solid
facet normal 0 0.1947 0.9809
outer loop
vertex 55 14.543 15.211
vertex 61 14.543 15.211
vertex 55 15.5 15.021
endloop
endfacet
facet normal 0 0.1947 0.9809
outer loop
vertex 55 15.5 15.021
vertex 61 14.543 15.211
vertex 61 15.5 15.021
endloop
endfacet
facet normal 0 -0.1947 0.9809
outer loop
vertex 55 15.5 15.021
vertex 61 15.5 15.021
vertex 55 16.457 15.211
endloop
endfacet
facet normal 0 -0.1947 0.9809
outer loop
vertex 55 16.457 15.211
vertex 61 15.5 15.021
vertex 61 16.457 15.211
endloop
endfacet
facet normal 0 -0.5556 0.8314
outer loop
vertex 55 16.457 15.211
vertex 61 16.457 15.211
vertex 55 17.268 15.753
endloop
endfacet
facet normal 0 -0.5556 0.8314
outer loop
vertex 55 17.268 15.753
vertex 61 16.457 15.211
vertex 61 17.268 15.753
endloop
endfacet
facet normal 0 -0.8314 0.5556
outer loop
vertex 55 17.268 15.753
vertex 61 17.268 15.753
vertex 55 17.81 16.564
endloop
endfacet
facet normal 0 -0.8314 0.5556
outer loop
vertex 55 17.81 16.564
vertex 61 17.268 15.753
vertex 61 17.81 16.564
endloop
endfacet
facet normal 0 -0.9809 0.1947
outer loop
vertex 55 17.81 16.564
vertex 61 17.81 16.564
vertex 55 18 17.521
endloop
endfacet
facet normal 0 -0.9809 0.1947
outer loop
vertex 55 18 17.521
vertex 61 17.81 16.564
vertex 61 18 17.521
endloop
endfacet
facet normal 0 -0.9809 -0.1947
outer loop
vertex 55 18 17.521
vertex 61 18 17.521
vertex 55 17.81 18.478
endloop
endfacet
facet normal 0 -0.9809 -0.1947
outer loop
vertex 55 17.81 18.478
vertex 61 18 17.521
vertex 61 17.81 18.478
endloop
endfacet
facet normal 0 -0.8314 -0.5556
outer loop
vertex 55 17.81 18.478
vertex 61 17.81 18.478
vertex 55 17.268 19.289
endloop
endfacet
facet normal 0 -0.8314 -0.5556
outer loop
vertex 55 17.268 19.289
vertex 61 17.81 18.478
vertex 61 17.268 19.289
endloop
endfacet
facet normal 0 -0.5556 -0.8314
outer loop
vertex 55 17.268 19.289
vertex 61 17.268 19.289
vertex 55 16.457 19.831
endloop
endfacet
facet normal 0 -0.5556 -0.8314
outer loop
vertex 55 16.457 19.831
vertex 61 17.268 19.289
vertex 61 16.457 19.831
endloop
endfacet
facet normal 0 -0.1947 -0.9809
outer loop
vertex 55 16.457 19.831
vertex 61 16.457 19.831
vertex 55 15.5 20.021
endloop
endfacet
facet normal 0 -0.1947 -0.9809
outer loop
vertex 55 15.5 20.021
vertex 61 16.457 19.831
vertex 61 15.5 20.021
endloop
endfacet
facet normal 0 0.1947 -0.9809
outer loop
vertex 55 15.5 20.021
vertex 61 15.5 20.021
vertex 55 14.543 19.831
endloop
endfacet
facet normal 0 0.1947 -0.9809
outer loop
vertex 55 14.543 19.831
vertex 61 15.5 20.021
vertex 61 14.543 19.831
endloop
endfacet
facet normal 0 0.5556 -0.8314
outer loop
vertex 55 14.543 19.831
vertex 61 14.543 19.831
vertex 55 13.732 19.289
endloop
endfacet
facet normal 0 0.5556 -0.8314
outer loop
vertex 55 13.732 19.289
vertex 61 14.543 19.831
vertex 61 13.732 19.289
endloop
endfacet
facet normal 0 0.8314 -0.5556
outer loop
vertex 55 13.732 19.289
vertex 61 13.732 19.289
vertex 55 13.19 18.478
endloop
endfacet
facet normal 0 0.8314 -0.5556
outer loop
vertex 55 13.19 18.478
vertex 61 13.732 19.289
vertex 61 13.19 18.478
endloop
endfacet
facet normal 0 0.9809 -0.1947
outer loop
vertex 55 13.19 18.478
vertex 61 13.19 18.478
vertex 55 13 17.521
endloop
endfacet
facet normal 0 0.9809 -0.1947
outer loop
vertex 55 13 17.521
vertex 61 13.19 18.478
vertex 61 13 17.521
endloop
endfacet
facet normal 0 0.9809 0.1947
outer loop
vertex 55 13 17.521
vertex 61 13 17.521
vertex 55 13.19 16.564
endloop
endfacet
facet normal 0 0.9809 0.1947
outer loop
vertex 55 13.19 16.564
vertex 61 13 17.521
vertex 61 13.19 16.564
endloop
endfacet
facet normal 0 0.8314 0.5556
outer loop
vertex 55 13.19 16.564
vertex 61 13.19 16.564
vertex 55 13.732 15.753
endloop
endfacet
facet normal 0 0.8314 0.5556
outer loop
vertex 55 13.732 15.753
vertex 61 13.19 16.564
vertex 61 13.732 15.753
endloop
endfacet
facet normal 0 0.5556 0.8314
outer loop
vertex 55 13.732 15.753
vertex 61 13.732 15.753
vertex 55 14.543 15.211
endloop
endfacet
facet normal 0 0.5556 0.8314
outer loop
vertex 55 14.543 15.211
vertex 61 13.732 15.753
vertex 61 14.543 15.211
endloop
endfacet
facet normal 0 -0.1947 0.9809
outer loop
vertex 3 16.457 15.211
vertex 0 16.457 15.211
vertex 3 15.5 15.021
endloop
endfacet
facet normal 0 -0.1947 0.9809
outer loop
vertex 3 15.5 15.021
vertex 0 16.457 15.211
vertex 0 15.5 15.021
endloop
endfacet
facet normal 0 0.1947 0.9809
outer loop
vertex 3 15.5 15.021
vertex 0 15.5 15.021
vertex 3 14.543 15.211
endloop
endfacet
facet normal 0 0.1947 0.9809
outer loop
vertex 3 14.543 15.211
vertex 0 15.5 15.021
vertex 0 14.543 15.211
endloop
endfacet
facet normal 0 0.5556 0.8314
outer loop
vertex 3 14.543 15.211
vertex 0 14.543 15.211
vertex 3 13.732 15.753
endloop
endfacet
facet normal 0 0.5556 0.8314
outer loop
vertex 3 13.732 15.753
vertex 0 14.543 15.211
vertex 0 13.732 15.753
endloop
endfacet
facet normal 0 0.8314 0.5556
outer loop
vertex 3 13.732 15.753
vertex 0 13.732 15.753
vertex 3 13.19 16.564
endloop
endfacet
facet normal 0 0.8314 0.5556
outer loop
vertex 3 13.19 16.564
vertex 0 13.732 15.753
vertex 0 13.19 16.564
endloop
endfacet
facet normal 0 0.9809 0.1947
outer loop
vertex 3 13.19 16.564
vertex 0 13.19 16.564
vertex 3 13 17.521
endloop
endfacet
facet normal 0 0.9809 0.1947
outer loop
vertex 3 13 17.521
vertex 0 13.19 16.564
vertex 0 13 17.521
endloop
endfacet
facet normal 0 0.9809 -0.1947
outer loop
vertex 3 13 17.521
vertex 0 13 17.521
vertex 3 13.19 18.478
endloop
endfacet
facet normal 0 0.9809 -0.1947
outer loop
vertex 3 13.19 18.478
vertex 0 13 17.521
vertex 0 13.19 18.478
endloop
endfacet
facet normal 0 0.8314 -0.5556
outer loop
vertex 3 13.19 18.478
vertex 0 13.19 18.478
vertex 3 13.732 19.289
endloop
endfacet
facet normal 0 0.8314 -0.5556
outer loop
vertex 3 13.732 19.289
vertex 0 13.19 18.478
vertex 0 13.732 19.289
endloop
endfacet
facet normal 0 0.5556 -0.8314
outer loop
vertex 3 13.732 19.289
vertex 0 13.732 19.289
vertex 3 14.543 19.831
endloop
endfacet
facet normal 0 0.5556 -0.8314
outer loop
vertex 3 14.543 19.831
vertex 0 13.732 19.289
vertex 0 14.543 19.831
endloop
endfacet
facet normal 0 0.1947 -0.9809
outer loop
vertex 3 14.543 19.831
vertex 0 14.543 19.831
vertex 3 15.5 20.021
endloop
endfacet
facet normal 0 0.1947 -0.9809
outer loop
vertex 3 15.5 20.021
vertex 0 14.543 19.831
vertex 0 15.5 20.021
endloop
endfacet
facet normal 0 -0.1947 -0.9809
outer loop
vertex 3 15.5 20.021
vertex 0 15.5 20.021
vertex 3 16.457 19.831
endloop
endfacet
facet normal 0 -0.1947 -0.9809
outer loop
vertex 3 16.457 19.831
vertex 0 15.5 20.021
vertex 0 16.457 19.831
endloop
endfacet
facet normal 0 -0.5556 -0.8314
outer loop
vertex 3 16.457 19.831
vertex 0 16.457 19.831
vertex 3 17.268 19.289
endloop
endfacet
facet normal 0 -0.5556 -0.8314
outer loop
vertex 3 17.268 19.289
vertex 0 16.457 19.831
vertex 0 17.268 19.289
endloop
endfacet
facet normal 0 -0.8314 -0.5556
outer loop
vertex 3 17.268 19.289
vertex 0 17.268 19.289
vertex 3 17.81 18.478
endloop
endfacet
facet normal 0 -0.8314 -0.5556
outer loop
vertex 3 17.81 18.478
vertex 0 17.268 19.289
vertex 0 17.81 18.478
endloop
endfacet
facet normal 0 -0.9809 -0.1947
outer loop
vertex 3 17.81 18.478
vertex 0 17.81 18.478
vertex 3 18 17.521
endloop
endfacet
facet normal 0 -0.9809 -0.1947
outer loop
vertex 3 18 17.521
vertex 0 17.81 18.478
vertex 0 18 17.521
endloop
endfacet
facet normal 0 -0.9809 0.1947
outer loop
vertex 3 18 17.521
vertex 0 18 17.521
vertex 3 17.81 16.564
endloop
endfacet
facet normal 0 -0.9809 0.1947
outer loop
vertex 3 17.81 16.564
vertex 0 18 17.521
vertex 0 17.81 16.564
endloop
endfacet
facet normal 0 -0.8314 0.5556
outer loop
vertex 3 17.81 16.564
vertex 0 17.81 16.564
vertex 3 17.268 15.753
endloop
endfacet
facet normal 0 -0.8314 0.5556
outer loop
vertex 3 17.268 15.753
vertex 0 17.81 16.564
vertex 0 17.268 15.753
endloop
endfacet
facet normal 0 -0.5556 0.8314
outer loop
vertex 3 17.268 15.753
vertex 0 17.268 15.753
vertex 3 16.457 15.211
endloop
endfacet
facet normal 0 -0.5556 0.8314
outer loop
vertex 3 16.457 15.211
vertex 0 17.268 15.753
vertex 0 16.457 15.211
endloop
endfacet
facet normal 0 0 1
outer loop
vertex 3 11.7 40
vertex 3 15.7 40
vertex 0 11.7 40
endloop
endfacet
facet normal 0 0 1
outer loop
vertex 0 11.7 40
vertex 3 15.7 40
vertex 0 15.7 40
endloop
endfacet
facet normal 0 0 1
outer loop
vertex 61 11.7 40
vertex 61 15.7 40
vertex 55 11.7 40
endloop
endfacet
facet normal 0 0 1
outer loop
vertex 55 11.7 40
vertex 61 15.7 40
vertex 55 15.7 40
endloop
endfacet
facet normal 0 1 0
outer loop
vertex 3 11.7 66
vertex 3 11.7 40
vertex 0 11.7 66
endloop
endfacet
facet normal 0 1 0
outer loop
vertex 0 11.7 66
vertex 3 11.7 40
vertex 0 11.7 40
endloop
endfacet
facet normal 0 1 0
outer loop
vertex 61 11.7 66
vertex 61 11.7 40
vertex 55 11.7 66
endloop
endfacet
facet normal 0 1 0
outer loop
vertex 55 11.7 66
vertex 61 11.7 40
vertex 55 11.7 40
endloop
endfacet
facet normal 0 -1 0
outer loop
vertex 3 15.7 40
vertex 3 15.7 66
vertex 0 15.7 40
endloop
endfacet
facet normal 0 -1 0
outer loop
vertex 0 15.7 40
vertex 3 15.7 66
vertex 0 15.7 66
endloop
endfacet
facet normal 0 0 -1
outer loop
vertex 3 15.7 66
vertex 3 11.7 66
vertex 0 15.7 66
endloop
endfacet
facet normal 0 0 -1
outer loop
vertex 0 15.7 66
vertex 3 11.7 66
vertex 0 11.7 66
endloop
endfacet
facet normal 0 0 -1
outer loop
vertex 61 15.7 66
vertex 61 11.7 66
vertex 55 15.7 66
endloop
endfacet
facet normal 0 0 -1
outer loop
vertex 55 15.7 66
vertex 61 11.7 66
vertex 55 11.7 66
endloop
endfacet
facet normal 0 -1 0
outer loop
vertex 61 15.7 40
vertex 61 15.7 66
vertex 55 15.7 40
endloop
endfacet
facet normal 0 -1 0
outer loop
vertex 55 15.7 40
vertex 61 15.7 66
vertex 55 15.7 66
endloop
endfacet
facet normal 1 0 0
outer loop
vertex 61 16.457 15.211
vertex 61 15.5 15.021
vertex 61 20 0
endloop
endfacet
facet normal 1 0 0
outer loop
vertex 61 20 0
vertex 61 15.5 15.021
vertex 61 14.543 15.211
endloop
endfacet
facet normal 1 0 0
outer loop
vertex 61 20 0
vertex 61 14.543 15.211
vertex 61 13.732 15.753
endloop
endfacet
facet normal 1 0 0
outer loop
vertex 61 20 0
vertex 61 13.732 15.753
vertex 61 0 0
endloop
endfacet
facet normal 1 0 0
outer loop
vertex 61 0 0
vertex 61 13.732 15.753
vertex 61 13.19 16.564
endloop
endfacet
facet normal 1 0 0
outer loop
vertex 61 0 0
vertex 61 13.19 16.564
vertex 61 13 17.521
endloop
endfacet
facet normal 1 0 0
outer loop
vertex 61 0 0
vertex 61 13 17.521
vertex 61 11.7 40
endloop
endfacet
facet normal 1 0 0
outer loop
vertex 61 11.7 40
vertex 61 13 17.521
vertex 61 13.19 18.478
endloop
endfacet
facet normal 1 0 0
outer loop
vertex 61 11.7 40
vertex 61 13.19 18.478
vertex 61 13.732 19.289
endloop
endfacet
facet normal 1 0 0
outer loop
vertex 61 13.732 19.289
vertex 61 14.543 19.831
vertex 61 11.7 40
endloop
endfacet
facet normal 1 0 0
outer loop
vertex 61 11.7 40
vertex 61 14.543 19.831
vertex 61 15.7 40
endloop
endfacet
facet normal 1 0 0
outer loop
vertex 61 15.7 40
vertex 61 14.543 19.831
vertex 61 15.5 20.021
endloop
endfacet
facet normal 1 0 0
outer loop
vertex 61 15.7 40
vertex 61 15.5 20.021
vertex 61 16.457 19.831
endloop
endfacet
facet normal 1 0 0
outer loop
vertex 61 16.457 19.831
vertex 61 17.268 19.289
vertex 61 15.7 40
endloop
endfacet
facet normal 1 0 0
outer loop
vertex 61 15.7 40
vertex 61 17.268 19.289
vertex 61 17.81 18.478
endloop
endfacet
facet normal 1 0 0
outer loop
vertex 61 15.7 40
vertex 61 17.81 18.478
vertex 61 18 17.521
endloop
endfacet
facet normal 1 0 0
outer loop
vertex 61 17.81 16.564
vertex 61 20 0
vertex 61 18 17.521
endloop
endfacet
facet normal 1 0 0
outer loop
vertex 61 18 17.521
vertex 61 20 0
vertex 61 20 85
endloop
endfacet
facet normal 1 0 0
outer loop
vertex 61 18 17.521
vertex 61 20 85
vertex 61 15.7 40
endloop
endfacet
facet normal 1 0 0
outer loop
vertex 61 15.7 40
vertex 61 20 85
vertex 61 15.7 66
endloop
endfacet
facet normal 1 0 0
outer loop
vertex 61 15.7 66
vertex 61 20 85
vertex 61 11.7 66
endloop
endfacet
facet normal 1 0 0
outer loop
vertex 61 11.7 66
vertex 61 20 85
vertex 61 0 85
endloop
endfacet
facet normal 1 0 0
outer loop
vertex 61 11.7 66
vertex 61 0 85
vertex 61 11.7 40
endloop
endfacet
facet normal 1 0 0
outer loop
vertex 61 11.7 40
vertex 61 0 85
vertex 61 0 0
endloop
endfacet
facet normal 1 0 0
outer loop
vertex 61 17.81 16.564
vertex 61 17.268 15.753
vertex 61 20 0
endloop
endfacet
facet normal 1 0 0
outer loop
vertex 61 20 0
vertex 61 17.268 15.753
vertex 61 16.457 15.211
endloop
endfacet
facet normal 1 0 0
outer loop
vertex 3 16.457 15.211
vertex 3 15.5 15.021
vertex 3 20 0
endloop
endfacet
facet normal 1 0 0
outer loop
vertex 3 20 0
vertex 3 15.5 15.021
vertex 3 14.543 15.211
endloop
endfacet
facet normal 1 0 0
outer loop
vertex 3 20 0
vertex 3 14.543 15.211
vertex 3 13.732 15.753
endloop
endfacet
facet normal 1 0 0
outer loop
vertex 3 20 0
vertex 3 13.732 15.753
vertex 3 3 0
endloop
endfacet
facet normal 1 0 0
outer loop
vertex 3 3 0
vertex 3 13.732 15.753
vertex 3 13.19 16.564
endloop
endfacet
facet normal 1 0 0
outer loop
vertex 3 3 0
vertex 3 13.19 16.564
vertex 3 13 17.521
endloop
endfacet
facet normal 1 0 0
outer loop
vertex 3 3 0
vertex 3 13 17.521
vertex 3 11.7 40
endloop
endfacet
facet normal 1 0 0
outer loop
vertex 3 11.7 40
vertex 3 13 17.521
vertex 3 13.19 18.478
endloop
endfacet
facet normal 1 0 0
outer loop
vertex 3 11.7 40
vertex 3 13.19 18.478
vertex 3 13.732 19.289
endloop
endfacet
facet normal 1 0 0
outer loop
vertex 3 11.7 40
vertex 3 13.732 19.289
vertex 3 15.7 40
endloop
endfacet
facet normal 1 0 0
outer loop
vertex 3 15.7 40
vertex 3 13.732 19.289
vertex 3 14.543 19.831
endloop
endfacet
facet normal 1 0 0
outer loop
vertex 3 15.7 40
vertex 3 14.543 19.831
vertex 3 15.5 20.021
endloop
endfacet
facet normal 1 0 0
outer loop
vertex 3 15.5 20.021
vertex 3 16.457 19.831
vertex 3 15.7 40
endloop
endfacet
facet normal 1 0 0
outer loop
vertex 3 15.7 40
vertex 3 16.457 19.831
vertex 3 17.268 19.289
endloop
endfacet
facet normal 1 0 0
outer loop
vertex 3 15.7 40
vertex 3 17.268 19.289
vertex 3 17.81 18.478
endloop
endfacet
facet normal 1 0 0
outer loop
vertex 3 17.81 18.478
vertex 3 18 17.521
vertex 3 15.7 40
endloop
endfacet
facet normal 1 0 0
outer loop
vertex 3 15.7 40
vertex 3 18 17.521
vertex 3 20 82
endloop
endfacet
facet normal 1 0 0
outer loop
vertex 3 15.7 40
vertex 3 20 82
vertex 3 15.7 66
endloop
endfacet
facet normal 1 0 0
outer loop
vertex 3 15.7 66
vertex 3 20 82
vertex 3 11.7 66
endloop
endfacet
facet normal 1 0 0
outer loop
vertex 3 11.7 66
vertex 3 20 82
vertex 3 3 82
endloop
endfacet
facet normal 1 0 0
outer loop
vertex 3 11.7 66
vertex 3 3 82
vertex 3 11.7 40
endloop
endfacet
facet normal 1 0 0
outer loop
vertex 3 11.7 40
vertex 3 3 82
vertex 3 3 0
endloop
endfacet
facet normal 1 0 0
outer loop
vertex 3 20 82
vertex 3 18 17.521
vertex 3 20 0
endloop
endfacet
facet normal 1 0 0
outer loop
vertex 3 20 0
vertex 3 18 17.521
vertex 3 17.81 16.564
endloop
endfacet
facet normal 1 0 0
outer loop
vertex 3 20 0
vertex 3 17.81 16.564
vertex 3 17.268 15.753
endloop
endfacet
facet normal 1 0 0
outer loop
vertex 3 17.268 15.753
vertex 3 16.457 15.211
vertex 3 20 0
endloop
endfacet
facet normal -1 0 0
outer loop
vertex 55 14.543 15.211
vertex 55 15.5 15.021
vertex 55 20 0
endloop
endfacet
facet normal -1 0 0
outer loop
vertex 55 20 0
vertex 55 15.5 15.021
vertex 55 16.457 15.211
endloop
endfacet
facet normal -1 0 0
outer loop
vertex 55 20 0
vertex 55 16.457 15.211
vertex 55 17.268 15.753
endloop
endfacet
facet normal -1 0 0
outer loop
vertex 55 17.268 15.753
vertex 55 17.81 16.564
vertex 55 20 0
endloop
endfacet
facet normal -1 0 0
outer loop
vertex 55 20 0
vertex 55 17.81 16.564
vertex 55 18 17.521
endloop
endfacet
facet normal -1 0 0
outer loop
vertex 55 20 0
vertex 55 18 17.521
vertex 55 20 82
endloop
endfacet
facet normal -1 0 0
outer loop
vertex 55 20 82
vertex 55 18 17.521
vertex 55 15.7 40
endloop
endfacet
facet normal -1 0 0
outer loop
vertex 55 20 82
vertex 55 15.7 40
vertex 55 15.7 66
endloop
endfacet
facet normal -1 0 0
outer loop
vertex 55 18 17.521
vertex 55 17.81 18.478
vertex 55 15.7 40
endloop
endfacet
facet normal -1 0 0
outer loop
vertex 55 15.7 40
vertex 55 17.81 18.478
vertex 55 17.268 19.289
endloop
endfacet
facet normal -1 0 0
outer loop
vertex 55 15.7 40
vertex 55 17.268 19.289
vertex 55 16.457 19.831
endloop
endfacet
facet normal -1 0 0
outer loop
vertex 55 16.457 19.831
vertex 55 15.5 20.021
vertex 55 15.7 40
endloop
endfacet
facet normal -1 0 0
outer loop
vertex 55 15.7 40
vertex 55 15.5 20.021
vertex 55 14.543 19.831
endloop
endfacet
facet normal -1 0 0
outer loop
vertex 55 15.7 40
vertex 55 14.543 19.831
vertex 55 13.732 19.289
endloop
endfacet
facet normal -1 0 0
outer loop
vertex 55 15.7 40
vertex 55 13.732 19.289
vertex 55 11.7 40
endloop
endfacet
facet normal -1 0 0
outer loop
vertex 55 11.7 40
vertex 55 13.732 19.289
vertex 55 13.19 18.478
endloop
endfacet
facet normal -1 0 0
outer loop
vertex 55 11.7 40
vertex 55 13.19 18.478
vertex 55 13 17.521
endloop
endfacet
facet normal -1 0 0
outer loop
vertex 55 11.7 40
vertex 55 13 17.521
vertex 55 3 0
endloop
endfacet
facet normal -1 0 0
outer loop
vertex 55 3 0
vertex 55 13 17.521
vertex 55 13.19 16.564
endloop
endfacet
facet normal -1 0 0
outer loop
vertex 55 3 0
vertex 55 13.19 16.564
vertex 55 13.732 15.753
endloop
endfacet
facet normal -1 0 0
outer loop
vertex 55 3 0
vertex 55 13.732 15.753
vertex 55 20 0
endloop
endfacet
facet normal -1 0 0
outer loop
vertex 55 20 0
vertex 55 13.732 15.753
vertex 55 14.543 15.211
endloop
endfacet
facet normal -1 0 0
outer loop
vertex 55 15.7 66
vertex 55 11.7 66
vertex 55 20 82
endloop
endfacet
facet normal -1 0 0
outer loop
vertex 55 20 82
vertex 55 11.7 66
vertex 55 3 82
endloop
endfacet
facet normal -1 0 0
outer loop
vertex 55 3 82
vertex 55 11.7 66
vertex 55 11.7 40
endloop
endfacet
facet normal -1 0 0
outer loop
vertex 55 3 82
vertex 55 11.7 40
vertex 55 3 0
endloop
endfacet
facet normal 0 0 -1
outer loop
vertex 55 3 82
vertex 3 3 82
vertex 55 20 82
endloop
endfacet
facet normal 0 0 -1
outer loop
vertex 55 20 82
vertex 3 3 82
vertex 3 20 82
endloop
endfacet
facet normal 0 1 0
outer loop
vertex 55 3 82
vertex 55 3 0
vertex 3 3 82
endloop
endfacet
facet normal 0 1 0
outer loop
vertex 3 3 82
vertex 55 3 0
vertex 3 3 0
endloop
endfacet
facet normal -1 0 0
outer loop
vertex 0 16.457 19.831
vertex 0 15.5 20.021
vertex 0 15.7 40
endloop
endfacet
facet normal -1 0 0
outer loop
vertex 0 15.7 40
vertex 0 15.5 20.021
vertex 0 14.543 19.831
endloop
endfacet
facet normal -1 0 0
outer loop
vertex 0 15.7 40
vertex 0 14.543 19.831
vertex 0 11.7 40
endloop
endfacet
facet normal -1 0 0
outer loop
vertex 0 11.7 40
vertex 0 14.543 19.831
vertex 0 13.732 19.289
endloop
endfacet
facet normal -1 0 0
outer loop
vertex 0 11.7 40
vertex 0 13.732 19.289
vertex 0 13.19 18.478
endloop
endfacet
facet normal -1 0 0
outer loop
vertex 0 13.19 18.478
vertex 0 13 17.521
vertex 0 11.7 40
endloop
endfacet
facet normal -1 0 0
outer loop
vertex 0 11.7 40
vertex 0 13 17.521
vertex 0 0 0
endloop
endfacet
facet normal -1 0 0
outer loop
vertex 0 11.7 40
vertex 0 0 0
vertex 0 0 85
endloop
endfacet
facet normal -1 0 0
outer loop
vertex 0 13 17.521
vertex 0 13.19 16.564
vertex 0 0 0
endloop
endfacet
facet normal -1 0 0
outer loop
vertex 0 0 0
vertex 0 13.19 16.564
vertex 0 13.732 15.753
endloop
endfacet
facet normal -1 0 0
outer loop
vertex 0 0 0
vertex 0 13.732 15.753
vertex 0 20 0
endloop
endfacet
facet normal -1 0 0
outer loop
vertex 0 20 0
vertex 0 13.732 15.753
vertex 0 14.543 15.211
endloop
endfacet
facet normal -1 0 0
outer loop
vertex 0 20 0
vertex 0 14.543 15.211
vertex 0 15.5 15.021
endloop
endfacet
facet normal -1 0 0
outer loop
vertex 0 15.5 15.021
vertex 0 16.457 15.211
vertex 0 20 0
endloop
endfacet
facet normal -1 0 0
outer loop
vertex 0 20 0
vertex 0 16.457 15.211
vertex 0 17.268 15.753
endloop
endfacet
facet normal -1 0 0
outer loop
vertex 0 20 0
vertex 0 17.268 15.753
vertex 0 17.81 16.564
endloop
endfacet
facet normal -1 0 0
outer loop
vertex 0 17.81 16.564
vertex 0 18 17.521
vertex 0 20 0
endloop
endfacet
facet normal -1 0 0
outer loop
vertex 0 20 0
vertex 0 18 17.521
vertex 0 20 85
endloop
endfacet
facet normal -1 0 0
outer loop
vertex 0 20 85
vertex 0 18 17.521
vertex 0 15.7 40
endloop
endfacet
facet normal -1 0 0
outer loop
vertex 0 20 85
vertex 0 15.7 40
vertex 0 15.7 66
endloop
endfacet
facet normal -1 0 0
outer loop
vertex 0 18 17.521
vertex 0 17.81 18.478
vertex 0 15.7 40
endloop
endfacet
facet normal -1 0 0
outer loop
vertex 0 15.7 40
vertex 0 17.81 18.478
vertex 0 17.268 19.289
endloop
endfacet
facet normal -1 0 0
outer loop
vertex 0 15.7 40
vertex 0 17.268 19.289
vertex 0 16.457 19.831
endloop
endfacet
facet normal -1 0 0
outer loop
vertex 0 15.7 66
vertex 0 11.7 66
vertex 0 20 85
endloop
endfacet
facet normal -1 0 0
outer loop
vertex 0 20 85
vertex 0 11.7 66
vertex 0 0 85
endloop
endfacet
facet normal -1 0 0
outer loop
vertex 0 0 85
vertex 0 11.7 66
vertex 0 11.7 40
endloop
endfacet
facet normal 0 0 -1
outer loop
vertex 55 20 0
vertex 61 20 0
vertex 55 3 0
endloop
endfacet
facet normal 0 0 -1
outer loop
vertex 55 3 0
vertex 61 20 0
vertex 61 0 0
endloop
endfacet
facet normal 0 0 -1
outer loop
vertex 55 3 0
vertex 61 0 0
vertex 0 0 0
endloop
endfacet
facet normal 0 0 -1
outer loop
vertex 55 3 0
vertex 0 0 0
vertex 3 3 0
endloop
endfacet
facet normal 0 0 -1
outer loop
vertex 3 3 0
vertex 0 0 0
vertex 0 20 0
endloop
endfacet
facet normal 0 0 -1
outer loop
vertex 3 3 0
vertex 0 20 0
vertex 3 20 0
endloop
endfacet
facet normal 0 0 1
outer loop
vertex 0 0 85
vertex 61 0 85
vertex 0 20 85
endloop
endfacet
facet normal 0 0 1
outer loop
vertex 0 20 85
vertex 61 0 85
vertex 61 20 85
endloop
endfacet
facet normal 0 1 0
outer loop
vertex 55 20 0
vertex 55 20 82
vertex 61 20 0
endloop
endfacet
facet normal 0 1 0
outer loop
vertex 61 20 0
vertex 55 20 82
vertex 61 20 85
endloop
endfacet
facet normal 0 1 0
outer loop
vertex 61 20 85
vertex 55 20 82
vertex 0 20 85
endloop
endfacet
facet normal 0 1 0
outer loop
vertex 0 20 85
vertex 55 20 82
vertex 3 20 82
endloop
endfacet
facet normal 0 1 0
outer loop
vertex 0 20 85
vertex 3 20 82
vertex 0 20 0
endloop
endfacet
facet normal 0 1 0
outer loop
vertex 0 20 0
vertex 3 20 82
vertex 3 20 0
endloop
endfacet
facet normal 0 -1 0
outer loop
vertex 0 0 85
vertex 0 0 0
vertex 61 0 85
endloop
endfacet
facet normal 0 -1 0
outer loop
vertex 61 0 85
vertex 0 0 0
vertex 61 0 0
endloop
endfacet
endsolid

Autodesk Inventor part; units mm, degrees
ref_plane "YZ Plane" through (0, 0, 0) normal (1, 0, 0) x (0, 1, 0)
ref_plane "XZ Plane" through (0, 0, 0) normal (0, 1, 0) x (-1, 0, 0)
ref_plane "XY Plane" through (0, 0, 0) normal (0, 0, 1) x (1, 0, 0)
sketch "Sketch2" plane through (0, 0, 0) normal (0, 1, 0) x (-1, 0, 0)
  line L0 (0, 0) -> (-58, 0)
  line L1 (-58, 0) -> (-58, 85)
  line L2 (-58, 85) -> (0, 85)
  line L3 (0, 85) -> (0, 0)
  dimension "d0" = 58
  dimension "d1" = 85
extrude "Extrusion1" add sketch "Sketch2" along normal blind 20
shell "Shell1" thickness 3 removed faces 1 at (19.3333, 20, 28.3333)
sketch "Sketch4" plane through (58, 0, 0) normal (0, 0, -1) x (-1, 0, 0)
  point P0 (58, 0)
sketch "Sketch5" plane through (3, 3, 3) normal (0, 0, 1) x (1, 0, 0)
  line L0 (0, 0) -> (0, 17) projected
  line L1 (0, 17) -> (52, 17) projected
  line L2 (0, 0) -> (52, 0)
  line L3 (52, 0) -> (52, 17)
  line L4 (52, 17) -> (0, 17)
  line L5 (0, 17) -> (0, 0)
  point P0 (-3, -3)
extrude "Extrusion3" cut sketch "Sketch5" against normal blind 10
sketch "Sketch6" plane through (0, 0, 0) normal (-1, 0, 0) x (0, 0, 1)
  line L0 (40, 15.7) -> (66, 15.7)
  line L1 (66, 15.7) -> (66, 11.7)
  line L2 (66, 11.7) -> (40, 11.7)
  line L3 (40, 11.7) -> (40, 15.7)
  line L4 (0, 0) -> (0, 20) projected
  line L5 (0, 0) -> (85, 0) projected
  line L6 (85, 0) -> (85, 20) projected
  dimension "d19" = 26
  dimension "d20" = 4
  dimension "d22" = 11.7
  dimension "d32" = 45
sketch "Sketch7" plane through (58, 0, 85) normal (1, 0, 0) x (0, 0, -1)
  line L0 (0, 0) -> (85, 0) projected
  line L1 (0, 20) -> (85, 20)
  line L2 (85, 20) -> (85, 0)
  line L3 (85, 0) -> (0, 0)
  line L4 (0, 0) -> (0, 20)
extrude "Extrusion5" add sketch "Sketch7" along normal blind 3
extrude "Extrusion6" cut sketch "Sketch6" against normal through all
sketch "Sketch9" plane through (0, 0, 0) normal (-1, 0, 0) x (0, 0, 1)
  circle A0 centre (17.5212, 15.5) radius 2.5
  line L0 (0, 20) -> (85, 20) projected
  point P0 (0, 0)
  dimension "d33" = 5
  dimension "d36" = 2
extrude "Extrusion8" cut sketch "Sketch9" against normal through all
properties part number "breadboard box v02"
